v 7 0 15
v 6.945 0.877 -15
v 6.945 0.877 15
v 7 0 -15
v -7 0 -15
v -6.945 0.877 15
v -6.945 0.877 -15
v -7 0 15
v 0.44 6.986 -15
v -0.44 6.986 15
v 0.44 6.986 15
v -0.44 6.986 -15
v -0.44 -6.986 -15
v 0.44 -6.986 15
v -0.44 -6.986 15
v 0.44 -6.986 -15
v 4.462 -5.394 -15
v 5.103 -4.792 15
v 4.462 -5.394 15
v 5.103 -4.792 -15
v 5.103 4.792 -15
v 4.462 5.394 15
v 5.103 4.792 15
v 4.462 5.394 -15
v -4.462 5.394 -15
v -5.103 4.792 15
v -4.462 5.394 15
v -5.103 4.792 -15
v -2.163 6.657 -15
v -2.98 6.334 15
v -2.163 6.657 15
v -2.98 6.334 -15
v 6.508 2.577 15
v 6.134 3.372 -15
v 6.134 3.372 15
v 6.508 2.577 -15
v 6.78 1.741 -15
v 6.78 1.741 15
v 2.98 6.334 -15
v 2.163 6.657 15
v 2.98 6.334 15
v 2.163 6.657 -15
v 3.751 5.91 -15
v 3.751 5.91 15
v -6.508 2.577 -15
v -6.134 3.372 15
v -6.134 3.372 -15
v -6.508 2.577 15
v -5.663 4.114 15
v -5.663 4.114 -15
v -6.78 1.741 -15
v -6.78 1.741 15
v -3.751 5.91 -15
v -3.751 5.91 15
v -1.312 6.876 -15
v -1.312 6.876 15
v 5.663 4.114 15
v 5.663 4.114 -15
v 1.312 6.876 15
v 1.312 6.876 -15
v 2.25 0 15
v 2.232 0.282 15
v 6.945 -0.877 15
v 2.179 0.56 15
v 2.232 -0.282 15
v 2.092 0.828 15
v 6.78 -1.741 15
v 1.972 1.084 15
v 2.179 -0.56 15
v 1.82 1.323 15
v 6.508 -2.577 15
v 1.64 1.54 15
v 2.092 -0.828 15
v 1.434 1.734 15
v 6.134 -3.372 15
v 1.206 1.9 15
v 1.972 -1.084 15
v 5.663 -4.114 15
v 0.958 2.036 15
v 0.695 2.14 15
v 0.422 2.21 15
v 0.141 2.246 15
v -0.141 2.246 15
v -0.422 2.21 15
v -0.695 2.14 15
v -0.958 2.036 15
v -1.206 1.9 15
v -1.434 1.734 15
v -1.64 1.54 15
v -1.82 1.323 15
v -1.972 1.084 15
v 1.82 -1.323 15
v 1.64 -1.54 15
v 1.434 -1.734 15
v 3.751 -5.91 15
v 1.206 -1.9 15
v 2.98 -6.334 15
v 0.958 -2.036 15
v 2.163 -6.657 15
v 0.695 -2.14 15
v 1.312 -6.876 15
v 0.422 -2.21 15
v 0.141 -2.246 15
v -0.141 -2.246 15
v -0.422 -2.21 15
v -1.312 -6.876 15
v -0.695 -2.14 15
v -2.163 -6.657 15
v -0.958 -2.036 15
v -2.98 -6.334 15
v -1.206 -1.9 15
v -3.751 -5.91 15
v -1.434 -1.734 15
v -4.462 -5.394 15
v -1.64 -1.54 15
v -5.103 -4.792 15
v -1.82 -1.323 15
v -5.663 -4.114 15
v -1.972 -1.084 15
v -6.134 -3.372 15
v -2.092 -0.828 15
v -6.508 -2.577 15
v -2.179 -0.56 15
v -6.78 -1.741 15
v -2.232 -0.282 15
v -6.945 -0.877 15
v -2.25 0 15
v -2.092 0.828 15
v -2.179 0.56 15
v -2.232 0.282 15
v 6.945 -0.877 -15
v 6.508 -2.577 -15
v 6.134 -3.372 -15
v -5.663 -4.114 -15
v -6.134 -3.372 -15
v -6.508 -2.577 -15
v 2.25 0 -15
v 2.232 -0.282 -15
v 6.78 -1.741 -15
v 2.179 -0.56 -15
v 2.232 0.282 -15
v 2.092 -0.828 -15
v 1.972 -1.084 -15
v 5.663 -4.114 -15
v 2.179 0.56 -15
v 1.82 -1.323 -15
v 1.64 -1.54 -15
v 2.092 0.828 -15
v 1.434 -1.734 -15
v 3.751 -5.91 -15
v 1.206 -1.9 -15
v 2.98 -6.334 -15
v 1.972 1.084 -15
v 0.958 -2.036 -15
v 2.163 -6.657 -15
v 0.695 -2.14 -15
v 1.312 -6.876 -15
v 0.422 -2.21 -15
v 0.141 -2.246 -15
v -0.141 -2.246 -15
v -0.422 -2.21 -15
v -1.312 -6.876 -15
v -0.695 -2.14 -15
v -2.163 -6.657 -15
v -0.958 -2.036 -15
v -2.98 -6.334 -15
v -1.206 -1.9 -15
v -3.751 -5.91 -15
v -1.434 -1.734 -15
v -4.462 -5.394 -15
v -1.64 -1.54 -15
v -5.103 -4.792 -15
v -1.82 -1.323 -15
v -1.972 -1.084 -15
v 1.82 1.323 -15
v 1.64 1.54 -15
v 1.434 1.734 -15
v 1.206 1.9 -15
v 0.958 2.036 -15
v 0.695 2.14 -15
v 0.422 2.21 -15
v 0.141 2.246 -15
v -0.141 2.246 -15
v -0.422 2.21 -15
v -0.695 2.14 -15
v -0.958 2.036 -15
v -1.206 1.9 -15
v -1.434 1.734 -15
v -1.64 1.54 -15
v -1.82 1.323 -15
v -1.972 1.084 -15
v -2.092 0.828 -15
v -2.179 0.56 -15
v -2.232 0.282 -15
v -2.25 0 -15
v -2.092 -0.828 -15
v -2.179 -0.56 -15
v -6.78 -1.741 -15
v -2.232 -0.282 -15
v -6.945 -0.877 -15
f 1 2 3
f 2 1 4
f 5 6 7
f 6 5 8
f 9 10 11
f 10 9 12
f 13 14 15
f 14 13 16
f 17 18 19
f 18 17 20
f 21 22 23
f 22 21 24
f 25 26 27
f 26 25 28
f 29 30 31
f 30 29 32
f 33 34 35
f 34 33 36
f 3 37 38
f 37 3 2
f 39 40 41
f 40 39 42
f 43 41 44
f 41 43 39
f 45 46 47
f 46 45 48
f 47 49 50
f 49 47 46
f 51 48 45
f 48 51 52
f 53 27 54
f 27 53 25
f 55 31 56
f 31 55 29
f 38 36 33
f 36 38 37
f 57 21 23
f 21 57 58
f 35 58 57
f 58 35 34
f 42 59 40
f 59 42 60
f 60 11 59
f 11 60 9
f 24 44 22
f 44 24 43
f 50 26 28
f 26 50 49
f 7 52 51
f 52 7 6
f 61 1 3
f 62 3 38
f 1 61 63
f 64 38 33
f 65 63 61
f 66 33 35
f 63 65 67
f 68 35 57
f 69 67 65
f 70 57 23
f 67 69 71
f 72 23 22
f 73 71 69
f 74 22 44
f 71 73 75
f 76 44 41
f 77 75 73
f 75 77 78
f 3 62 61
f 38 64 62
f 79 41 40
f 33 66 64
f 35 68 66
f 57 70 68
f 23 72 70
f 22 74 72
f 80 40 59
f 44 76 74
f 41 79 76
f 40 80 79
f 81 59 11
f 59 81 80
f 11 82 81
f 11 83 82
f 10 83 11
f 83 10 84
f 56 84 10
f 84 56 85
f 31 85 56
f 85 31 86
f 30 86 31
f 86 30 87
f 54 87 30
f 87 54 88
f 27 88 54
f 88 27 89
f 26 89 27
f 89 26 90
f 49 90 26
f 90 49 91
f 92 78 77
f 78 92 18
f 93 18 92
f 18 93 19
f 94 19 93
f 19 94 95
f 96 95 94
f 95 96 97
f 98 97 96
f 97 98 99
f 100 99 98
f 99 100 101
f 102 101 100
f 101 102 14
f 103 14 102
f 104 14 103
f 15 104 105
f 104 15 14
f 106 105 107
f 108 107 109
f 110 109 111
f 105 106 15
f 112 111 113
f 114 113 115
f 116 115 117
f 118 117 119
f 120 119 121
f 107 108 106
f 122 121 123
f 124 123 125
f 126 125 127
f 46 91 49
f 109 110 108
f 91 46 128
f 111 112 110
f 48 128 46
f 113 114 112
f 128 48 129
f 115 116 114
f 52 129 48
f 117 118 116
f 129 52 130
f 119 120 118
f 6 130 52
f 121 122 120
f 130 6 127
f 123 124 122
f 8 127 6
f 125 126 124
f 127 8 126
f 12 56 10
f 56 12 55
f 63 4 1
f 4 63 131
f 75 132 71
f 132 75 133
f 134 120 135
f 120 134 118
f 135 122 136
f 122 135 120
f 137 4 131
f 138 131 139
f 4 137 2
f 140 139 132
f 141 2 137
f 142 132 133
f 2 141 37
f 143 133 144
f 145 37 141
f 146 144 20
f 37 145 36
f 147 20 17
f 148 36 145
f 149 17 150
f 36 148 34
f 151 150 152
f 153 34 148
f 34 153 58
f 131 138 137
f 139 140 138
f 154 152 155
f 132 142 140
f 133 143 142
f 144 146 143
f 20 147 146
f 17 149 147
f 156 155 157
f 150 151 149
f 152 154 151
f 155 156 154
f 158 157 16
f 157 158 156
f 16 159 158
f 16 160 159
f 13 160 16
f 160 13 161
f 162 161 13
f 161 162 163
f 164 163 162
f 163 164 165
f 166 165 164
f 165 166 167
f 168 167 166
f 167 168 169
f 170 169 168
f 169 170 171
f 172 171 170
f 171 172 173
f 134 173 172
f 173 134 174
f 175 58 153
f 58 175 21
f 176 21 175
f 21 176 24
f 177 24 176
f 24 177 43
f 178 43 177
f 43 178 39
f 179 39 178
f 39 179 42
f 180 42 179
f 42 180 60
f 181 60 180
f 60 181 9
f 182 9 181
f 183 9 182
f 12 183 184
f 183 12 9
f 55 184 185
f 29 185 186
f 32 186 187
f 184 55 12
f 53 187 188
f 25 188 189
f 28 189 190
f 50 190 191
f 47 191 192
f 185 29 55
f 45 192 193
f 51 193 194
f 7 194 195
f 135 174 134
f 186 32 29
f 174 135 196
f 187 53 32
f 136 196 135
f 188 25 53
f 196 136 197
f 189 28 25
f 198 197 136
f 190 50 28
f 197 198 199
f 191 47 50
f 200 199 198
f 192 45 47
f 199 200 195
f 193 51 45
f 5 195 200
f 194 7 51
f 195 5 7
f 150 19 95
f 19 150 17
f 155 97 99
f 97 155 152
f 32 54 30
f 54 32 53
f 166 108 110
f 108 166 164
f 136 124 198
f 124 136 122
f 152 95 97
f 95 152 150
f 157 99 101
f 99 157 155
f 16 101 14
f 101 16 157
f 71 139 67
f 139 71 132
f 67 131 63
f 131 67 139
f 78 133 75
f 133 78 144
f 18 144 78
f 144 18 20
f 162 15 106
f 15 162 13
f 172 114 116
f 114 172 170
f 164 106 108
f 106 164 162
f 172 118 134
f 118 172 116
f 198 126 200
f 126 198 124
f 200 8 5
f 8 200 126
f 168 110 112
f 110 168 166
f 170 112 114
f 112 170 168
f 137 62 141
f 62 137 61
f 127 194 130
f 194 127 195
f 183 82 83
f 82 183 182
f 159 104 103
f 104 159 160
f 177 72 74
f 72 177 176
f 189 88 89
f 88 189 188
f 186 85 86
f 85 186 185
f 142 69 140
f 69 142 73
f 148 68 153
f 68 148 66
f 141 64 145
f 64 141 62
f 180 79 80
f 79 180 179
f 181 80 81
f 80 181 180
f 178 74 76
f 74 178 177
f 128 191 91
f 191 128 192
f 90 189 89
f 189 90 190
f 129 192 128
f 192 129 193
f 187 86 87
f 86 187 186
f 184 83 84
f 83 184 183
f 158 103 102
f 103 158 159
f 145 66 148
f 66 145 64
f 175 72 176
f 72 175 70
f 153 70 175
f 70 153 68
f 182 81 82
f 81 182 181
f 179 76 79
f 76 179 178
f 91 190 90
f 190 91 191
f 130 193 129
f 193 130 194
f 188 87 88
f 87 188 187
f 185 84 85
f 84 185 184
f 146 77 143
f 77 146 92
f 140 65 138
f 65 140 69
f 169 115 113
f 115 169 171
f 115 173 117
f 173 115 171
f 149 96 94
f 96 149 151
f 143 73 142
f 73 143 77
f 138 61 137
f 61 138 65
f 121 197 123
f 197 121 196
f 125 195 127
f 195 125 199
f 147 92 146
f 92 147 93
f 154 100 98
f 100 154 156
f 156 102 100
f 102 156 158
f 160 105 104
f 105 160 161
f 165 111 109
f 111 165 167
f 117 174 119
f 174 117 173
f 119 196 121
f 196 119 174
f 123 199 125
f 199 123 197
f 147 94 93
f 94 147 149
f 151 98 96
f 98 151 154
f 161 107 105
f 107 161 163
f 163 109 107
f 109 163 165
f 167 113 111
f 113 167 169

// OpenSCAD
$fn = 50;


difference() {
	union() {
		translate(v = [0, 0, -15.0000000000]) {
			cylinder(h = 30, r = 7.0000000000);
		}
	}
	union() {
		translate(v = [0, 0, -100.0000000000]) {
			cylinder(h = 200, r = 2.2500000000);
		}
	}
}
